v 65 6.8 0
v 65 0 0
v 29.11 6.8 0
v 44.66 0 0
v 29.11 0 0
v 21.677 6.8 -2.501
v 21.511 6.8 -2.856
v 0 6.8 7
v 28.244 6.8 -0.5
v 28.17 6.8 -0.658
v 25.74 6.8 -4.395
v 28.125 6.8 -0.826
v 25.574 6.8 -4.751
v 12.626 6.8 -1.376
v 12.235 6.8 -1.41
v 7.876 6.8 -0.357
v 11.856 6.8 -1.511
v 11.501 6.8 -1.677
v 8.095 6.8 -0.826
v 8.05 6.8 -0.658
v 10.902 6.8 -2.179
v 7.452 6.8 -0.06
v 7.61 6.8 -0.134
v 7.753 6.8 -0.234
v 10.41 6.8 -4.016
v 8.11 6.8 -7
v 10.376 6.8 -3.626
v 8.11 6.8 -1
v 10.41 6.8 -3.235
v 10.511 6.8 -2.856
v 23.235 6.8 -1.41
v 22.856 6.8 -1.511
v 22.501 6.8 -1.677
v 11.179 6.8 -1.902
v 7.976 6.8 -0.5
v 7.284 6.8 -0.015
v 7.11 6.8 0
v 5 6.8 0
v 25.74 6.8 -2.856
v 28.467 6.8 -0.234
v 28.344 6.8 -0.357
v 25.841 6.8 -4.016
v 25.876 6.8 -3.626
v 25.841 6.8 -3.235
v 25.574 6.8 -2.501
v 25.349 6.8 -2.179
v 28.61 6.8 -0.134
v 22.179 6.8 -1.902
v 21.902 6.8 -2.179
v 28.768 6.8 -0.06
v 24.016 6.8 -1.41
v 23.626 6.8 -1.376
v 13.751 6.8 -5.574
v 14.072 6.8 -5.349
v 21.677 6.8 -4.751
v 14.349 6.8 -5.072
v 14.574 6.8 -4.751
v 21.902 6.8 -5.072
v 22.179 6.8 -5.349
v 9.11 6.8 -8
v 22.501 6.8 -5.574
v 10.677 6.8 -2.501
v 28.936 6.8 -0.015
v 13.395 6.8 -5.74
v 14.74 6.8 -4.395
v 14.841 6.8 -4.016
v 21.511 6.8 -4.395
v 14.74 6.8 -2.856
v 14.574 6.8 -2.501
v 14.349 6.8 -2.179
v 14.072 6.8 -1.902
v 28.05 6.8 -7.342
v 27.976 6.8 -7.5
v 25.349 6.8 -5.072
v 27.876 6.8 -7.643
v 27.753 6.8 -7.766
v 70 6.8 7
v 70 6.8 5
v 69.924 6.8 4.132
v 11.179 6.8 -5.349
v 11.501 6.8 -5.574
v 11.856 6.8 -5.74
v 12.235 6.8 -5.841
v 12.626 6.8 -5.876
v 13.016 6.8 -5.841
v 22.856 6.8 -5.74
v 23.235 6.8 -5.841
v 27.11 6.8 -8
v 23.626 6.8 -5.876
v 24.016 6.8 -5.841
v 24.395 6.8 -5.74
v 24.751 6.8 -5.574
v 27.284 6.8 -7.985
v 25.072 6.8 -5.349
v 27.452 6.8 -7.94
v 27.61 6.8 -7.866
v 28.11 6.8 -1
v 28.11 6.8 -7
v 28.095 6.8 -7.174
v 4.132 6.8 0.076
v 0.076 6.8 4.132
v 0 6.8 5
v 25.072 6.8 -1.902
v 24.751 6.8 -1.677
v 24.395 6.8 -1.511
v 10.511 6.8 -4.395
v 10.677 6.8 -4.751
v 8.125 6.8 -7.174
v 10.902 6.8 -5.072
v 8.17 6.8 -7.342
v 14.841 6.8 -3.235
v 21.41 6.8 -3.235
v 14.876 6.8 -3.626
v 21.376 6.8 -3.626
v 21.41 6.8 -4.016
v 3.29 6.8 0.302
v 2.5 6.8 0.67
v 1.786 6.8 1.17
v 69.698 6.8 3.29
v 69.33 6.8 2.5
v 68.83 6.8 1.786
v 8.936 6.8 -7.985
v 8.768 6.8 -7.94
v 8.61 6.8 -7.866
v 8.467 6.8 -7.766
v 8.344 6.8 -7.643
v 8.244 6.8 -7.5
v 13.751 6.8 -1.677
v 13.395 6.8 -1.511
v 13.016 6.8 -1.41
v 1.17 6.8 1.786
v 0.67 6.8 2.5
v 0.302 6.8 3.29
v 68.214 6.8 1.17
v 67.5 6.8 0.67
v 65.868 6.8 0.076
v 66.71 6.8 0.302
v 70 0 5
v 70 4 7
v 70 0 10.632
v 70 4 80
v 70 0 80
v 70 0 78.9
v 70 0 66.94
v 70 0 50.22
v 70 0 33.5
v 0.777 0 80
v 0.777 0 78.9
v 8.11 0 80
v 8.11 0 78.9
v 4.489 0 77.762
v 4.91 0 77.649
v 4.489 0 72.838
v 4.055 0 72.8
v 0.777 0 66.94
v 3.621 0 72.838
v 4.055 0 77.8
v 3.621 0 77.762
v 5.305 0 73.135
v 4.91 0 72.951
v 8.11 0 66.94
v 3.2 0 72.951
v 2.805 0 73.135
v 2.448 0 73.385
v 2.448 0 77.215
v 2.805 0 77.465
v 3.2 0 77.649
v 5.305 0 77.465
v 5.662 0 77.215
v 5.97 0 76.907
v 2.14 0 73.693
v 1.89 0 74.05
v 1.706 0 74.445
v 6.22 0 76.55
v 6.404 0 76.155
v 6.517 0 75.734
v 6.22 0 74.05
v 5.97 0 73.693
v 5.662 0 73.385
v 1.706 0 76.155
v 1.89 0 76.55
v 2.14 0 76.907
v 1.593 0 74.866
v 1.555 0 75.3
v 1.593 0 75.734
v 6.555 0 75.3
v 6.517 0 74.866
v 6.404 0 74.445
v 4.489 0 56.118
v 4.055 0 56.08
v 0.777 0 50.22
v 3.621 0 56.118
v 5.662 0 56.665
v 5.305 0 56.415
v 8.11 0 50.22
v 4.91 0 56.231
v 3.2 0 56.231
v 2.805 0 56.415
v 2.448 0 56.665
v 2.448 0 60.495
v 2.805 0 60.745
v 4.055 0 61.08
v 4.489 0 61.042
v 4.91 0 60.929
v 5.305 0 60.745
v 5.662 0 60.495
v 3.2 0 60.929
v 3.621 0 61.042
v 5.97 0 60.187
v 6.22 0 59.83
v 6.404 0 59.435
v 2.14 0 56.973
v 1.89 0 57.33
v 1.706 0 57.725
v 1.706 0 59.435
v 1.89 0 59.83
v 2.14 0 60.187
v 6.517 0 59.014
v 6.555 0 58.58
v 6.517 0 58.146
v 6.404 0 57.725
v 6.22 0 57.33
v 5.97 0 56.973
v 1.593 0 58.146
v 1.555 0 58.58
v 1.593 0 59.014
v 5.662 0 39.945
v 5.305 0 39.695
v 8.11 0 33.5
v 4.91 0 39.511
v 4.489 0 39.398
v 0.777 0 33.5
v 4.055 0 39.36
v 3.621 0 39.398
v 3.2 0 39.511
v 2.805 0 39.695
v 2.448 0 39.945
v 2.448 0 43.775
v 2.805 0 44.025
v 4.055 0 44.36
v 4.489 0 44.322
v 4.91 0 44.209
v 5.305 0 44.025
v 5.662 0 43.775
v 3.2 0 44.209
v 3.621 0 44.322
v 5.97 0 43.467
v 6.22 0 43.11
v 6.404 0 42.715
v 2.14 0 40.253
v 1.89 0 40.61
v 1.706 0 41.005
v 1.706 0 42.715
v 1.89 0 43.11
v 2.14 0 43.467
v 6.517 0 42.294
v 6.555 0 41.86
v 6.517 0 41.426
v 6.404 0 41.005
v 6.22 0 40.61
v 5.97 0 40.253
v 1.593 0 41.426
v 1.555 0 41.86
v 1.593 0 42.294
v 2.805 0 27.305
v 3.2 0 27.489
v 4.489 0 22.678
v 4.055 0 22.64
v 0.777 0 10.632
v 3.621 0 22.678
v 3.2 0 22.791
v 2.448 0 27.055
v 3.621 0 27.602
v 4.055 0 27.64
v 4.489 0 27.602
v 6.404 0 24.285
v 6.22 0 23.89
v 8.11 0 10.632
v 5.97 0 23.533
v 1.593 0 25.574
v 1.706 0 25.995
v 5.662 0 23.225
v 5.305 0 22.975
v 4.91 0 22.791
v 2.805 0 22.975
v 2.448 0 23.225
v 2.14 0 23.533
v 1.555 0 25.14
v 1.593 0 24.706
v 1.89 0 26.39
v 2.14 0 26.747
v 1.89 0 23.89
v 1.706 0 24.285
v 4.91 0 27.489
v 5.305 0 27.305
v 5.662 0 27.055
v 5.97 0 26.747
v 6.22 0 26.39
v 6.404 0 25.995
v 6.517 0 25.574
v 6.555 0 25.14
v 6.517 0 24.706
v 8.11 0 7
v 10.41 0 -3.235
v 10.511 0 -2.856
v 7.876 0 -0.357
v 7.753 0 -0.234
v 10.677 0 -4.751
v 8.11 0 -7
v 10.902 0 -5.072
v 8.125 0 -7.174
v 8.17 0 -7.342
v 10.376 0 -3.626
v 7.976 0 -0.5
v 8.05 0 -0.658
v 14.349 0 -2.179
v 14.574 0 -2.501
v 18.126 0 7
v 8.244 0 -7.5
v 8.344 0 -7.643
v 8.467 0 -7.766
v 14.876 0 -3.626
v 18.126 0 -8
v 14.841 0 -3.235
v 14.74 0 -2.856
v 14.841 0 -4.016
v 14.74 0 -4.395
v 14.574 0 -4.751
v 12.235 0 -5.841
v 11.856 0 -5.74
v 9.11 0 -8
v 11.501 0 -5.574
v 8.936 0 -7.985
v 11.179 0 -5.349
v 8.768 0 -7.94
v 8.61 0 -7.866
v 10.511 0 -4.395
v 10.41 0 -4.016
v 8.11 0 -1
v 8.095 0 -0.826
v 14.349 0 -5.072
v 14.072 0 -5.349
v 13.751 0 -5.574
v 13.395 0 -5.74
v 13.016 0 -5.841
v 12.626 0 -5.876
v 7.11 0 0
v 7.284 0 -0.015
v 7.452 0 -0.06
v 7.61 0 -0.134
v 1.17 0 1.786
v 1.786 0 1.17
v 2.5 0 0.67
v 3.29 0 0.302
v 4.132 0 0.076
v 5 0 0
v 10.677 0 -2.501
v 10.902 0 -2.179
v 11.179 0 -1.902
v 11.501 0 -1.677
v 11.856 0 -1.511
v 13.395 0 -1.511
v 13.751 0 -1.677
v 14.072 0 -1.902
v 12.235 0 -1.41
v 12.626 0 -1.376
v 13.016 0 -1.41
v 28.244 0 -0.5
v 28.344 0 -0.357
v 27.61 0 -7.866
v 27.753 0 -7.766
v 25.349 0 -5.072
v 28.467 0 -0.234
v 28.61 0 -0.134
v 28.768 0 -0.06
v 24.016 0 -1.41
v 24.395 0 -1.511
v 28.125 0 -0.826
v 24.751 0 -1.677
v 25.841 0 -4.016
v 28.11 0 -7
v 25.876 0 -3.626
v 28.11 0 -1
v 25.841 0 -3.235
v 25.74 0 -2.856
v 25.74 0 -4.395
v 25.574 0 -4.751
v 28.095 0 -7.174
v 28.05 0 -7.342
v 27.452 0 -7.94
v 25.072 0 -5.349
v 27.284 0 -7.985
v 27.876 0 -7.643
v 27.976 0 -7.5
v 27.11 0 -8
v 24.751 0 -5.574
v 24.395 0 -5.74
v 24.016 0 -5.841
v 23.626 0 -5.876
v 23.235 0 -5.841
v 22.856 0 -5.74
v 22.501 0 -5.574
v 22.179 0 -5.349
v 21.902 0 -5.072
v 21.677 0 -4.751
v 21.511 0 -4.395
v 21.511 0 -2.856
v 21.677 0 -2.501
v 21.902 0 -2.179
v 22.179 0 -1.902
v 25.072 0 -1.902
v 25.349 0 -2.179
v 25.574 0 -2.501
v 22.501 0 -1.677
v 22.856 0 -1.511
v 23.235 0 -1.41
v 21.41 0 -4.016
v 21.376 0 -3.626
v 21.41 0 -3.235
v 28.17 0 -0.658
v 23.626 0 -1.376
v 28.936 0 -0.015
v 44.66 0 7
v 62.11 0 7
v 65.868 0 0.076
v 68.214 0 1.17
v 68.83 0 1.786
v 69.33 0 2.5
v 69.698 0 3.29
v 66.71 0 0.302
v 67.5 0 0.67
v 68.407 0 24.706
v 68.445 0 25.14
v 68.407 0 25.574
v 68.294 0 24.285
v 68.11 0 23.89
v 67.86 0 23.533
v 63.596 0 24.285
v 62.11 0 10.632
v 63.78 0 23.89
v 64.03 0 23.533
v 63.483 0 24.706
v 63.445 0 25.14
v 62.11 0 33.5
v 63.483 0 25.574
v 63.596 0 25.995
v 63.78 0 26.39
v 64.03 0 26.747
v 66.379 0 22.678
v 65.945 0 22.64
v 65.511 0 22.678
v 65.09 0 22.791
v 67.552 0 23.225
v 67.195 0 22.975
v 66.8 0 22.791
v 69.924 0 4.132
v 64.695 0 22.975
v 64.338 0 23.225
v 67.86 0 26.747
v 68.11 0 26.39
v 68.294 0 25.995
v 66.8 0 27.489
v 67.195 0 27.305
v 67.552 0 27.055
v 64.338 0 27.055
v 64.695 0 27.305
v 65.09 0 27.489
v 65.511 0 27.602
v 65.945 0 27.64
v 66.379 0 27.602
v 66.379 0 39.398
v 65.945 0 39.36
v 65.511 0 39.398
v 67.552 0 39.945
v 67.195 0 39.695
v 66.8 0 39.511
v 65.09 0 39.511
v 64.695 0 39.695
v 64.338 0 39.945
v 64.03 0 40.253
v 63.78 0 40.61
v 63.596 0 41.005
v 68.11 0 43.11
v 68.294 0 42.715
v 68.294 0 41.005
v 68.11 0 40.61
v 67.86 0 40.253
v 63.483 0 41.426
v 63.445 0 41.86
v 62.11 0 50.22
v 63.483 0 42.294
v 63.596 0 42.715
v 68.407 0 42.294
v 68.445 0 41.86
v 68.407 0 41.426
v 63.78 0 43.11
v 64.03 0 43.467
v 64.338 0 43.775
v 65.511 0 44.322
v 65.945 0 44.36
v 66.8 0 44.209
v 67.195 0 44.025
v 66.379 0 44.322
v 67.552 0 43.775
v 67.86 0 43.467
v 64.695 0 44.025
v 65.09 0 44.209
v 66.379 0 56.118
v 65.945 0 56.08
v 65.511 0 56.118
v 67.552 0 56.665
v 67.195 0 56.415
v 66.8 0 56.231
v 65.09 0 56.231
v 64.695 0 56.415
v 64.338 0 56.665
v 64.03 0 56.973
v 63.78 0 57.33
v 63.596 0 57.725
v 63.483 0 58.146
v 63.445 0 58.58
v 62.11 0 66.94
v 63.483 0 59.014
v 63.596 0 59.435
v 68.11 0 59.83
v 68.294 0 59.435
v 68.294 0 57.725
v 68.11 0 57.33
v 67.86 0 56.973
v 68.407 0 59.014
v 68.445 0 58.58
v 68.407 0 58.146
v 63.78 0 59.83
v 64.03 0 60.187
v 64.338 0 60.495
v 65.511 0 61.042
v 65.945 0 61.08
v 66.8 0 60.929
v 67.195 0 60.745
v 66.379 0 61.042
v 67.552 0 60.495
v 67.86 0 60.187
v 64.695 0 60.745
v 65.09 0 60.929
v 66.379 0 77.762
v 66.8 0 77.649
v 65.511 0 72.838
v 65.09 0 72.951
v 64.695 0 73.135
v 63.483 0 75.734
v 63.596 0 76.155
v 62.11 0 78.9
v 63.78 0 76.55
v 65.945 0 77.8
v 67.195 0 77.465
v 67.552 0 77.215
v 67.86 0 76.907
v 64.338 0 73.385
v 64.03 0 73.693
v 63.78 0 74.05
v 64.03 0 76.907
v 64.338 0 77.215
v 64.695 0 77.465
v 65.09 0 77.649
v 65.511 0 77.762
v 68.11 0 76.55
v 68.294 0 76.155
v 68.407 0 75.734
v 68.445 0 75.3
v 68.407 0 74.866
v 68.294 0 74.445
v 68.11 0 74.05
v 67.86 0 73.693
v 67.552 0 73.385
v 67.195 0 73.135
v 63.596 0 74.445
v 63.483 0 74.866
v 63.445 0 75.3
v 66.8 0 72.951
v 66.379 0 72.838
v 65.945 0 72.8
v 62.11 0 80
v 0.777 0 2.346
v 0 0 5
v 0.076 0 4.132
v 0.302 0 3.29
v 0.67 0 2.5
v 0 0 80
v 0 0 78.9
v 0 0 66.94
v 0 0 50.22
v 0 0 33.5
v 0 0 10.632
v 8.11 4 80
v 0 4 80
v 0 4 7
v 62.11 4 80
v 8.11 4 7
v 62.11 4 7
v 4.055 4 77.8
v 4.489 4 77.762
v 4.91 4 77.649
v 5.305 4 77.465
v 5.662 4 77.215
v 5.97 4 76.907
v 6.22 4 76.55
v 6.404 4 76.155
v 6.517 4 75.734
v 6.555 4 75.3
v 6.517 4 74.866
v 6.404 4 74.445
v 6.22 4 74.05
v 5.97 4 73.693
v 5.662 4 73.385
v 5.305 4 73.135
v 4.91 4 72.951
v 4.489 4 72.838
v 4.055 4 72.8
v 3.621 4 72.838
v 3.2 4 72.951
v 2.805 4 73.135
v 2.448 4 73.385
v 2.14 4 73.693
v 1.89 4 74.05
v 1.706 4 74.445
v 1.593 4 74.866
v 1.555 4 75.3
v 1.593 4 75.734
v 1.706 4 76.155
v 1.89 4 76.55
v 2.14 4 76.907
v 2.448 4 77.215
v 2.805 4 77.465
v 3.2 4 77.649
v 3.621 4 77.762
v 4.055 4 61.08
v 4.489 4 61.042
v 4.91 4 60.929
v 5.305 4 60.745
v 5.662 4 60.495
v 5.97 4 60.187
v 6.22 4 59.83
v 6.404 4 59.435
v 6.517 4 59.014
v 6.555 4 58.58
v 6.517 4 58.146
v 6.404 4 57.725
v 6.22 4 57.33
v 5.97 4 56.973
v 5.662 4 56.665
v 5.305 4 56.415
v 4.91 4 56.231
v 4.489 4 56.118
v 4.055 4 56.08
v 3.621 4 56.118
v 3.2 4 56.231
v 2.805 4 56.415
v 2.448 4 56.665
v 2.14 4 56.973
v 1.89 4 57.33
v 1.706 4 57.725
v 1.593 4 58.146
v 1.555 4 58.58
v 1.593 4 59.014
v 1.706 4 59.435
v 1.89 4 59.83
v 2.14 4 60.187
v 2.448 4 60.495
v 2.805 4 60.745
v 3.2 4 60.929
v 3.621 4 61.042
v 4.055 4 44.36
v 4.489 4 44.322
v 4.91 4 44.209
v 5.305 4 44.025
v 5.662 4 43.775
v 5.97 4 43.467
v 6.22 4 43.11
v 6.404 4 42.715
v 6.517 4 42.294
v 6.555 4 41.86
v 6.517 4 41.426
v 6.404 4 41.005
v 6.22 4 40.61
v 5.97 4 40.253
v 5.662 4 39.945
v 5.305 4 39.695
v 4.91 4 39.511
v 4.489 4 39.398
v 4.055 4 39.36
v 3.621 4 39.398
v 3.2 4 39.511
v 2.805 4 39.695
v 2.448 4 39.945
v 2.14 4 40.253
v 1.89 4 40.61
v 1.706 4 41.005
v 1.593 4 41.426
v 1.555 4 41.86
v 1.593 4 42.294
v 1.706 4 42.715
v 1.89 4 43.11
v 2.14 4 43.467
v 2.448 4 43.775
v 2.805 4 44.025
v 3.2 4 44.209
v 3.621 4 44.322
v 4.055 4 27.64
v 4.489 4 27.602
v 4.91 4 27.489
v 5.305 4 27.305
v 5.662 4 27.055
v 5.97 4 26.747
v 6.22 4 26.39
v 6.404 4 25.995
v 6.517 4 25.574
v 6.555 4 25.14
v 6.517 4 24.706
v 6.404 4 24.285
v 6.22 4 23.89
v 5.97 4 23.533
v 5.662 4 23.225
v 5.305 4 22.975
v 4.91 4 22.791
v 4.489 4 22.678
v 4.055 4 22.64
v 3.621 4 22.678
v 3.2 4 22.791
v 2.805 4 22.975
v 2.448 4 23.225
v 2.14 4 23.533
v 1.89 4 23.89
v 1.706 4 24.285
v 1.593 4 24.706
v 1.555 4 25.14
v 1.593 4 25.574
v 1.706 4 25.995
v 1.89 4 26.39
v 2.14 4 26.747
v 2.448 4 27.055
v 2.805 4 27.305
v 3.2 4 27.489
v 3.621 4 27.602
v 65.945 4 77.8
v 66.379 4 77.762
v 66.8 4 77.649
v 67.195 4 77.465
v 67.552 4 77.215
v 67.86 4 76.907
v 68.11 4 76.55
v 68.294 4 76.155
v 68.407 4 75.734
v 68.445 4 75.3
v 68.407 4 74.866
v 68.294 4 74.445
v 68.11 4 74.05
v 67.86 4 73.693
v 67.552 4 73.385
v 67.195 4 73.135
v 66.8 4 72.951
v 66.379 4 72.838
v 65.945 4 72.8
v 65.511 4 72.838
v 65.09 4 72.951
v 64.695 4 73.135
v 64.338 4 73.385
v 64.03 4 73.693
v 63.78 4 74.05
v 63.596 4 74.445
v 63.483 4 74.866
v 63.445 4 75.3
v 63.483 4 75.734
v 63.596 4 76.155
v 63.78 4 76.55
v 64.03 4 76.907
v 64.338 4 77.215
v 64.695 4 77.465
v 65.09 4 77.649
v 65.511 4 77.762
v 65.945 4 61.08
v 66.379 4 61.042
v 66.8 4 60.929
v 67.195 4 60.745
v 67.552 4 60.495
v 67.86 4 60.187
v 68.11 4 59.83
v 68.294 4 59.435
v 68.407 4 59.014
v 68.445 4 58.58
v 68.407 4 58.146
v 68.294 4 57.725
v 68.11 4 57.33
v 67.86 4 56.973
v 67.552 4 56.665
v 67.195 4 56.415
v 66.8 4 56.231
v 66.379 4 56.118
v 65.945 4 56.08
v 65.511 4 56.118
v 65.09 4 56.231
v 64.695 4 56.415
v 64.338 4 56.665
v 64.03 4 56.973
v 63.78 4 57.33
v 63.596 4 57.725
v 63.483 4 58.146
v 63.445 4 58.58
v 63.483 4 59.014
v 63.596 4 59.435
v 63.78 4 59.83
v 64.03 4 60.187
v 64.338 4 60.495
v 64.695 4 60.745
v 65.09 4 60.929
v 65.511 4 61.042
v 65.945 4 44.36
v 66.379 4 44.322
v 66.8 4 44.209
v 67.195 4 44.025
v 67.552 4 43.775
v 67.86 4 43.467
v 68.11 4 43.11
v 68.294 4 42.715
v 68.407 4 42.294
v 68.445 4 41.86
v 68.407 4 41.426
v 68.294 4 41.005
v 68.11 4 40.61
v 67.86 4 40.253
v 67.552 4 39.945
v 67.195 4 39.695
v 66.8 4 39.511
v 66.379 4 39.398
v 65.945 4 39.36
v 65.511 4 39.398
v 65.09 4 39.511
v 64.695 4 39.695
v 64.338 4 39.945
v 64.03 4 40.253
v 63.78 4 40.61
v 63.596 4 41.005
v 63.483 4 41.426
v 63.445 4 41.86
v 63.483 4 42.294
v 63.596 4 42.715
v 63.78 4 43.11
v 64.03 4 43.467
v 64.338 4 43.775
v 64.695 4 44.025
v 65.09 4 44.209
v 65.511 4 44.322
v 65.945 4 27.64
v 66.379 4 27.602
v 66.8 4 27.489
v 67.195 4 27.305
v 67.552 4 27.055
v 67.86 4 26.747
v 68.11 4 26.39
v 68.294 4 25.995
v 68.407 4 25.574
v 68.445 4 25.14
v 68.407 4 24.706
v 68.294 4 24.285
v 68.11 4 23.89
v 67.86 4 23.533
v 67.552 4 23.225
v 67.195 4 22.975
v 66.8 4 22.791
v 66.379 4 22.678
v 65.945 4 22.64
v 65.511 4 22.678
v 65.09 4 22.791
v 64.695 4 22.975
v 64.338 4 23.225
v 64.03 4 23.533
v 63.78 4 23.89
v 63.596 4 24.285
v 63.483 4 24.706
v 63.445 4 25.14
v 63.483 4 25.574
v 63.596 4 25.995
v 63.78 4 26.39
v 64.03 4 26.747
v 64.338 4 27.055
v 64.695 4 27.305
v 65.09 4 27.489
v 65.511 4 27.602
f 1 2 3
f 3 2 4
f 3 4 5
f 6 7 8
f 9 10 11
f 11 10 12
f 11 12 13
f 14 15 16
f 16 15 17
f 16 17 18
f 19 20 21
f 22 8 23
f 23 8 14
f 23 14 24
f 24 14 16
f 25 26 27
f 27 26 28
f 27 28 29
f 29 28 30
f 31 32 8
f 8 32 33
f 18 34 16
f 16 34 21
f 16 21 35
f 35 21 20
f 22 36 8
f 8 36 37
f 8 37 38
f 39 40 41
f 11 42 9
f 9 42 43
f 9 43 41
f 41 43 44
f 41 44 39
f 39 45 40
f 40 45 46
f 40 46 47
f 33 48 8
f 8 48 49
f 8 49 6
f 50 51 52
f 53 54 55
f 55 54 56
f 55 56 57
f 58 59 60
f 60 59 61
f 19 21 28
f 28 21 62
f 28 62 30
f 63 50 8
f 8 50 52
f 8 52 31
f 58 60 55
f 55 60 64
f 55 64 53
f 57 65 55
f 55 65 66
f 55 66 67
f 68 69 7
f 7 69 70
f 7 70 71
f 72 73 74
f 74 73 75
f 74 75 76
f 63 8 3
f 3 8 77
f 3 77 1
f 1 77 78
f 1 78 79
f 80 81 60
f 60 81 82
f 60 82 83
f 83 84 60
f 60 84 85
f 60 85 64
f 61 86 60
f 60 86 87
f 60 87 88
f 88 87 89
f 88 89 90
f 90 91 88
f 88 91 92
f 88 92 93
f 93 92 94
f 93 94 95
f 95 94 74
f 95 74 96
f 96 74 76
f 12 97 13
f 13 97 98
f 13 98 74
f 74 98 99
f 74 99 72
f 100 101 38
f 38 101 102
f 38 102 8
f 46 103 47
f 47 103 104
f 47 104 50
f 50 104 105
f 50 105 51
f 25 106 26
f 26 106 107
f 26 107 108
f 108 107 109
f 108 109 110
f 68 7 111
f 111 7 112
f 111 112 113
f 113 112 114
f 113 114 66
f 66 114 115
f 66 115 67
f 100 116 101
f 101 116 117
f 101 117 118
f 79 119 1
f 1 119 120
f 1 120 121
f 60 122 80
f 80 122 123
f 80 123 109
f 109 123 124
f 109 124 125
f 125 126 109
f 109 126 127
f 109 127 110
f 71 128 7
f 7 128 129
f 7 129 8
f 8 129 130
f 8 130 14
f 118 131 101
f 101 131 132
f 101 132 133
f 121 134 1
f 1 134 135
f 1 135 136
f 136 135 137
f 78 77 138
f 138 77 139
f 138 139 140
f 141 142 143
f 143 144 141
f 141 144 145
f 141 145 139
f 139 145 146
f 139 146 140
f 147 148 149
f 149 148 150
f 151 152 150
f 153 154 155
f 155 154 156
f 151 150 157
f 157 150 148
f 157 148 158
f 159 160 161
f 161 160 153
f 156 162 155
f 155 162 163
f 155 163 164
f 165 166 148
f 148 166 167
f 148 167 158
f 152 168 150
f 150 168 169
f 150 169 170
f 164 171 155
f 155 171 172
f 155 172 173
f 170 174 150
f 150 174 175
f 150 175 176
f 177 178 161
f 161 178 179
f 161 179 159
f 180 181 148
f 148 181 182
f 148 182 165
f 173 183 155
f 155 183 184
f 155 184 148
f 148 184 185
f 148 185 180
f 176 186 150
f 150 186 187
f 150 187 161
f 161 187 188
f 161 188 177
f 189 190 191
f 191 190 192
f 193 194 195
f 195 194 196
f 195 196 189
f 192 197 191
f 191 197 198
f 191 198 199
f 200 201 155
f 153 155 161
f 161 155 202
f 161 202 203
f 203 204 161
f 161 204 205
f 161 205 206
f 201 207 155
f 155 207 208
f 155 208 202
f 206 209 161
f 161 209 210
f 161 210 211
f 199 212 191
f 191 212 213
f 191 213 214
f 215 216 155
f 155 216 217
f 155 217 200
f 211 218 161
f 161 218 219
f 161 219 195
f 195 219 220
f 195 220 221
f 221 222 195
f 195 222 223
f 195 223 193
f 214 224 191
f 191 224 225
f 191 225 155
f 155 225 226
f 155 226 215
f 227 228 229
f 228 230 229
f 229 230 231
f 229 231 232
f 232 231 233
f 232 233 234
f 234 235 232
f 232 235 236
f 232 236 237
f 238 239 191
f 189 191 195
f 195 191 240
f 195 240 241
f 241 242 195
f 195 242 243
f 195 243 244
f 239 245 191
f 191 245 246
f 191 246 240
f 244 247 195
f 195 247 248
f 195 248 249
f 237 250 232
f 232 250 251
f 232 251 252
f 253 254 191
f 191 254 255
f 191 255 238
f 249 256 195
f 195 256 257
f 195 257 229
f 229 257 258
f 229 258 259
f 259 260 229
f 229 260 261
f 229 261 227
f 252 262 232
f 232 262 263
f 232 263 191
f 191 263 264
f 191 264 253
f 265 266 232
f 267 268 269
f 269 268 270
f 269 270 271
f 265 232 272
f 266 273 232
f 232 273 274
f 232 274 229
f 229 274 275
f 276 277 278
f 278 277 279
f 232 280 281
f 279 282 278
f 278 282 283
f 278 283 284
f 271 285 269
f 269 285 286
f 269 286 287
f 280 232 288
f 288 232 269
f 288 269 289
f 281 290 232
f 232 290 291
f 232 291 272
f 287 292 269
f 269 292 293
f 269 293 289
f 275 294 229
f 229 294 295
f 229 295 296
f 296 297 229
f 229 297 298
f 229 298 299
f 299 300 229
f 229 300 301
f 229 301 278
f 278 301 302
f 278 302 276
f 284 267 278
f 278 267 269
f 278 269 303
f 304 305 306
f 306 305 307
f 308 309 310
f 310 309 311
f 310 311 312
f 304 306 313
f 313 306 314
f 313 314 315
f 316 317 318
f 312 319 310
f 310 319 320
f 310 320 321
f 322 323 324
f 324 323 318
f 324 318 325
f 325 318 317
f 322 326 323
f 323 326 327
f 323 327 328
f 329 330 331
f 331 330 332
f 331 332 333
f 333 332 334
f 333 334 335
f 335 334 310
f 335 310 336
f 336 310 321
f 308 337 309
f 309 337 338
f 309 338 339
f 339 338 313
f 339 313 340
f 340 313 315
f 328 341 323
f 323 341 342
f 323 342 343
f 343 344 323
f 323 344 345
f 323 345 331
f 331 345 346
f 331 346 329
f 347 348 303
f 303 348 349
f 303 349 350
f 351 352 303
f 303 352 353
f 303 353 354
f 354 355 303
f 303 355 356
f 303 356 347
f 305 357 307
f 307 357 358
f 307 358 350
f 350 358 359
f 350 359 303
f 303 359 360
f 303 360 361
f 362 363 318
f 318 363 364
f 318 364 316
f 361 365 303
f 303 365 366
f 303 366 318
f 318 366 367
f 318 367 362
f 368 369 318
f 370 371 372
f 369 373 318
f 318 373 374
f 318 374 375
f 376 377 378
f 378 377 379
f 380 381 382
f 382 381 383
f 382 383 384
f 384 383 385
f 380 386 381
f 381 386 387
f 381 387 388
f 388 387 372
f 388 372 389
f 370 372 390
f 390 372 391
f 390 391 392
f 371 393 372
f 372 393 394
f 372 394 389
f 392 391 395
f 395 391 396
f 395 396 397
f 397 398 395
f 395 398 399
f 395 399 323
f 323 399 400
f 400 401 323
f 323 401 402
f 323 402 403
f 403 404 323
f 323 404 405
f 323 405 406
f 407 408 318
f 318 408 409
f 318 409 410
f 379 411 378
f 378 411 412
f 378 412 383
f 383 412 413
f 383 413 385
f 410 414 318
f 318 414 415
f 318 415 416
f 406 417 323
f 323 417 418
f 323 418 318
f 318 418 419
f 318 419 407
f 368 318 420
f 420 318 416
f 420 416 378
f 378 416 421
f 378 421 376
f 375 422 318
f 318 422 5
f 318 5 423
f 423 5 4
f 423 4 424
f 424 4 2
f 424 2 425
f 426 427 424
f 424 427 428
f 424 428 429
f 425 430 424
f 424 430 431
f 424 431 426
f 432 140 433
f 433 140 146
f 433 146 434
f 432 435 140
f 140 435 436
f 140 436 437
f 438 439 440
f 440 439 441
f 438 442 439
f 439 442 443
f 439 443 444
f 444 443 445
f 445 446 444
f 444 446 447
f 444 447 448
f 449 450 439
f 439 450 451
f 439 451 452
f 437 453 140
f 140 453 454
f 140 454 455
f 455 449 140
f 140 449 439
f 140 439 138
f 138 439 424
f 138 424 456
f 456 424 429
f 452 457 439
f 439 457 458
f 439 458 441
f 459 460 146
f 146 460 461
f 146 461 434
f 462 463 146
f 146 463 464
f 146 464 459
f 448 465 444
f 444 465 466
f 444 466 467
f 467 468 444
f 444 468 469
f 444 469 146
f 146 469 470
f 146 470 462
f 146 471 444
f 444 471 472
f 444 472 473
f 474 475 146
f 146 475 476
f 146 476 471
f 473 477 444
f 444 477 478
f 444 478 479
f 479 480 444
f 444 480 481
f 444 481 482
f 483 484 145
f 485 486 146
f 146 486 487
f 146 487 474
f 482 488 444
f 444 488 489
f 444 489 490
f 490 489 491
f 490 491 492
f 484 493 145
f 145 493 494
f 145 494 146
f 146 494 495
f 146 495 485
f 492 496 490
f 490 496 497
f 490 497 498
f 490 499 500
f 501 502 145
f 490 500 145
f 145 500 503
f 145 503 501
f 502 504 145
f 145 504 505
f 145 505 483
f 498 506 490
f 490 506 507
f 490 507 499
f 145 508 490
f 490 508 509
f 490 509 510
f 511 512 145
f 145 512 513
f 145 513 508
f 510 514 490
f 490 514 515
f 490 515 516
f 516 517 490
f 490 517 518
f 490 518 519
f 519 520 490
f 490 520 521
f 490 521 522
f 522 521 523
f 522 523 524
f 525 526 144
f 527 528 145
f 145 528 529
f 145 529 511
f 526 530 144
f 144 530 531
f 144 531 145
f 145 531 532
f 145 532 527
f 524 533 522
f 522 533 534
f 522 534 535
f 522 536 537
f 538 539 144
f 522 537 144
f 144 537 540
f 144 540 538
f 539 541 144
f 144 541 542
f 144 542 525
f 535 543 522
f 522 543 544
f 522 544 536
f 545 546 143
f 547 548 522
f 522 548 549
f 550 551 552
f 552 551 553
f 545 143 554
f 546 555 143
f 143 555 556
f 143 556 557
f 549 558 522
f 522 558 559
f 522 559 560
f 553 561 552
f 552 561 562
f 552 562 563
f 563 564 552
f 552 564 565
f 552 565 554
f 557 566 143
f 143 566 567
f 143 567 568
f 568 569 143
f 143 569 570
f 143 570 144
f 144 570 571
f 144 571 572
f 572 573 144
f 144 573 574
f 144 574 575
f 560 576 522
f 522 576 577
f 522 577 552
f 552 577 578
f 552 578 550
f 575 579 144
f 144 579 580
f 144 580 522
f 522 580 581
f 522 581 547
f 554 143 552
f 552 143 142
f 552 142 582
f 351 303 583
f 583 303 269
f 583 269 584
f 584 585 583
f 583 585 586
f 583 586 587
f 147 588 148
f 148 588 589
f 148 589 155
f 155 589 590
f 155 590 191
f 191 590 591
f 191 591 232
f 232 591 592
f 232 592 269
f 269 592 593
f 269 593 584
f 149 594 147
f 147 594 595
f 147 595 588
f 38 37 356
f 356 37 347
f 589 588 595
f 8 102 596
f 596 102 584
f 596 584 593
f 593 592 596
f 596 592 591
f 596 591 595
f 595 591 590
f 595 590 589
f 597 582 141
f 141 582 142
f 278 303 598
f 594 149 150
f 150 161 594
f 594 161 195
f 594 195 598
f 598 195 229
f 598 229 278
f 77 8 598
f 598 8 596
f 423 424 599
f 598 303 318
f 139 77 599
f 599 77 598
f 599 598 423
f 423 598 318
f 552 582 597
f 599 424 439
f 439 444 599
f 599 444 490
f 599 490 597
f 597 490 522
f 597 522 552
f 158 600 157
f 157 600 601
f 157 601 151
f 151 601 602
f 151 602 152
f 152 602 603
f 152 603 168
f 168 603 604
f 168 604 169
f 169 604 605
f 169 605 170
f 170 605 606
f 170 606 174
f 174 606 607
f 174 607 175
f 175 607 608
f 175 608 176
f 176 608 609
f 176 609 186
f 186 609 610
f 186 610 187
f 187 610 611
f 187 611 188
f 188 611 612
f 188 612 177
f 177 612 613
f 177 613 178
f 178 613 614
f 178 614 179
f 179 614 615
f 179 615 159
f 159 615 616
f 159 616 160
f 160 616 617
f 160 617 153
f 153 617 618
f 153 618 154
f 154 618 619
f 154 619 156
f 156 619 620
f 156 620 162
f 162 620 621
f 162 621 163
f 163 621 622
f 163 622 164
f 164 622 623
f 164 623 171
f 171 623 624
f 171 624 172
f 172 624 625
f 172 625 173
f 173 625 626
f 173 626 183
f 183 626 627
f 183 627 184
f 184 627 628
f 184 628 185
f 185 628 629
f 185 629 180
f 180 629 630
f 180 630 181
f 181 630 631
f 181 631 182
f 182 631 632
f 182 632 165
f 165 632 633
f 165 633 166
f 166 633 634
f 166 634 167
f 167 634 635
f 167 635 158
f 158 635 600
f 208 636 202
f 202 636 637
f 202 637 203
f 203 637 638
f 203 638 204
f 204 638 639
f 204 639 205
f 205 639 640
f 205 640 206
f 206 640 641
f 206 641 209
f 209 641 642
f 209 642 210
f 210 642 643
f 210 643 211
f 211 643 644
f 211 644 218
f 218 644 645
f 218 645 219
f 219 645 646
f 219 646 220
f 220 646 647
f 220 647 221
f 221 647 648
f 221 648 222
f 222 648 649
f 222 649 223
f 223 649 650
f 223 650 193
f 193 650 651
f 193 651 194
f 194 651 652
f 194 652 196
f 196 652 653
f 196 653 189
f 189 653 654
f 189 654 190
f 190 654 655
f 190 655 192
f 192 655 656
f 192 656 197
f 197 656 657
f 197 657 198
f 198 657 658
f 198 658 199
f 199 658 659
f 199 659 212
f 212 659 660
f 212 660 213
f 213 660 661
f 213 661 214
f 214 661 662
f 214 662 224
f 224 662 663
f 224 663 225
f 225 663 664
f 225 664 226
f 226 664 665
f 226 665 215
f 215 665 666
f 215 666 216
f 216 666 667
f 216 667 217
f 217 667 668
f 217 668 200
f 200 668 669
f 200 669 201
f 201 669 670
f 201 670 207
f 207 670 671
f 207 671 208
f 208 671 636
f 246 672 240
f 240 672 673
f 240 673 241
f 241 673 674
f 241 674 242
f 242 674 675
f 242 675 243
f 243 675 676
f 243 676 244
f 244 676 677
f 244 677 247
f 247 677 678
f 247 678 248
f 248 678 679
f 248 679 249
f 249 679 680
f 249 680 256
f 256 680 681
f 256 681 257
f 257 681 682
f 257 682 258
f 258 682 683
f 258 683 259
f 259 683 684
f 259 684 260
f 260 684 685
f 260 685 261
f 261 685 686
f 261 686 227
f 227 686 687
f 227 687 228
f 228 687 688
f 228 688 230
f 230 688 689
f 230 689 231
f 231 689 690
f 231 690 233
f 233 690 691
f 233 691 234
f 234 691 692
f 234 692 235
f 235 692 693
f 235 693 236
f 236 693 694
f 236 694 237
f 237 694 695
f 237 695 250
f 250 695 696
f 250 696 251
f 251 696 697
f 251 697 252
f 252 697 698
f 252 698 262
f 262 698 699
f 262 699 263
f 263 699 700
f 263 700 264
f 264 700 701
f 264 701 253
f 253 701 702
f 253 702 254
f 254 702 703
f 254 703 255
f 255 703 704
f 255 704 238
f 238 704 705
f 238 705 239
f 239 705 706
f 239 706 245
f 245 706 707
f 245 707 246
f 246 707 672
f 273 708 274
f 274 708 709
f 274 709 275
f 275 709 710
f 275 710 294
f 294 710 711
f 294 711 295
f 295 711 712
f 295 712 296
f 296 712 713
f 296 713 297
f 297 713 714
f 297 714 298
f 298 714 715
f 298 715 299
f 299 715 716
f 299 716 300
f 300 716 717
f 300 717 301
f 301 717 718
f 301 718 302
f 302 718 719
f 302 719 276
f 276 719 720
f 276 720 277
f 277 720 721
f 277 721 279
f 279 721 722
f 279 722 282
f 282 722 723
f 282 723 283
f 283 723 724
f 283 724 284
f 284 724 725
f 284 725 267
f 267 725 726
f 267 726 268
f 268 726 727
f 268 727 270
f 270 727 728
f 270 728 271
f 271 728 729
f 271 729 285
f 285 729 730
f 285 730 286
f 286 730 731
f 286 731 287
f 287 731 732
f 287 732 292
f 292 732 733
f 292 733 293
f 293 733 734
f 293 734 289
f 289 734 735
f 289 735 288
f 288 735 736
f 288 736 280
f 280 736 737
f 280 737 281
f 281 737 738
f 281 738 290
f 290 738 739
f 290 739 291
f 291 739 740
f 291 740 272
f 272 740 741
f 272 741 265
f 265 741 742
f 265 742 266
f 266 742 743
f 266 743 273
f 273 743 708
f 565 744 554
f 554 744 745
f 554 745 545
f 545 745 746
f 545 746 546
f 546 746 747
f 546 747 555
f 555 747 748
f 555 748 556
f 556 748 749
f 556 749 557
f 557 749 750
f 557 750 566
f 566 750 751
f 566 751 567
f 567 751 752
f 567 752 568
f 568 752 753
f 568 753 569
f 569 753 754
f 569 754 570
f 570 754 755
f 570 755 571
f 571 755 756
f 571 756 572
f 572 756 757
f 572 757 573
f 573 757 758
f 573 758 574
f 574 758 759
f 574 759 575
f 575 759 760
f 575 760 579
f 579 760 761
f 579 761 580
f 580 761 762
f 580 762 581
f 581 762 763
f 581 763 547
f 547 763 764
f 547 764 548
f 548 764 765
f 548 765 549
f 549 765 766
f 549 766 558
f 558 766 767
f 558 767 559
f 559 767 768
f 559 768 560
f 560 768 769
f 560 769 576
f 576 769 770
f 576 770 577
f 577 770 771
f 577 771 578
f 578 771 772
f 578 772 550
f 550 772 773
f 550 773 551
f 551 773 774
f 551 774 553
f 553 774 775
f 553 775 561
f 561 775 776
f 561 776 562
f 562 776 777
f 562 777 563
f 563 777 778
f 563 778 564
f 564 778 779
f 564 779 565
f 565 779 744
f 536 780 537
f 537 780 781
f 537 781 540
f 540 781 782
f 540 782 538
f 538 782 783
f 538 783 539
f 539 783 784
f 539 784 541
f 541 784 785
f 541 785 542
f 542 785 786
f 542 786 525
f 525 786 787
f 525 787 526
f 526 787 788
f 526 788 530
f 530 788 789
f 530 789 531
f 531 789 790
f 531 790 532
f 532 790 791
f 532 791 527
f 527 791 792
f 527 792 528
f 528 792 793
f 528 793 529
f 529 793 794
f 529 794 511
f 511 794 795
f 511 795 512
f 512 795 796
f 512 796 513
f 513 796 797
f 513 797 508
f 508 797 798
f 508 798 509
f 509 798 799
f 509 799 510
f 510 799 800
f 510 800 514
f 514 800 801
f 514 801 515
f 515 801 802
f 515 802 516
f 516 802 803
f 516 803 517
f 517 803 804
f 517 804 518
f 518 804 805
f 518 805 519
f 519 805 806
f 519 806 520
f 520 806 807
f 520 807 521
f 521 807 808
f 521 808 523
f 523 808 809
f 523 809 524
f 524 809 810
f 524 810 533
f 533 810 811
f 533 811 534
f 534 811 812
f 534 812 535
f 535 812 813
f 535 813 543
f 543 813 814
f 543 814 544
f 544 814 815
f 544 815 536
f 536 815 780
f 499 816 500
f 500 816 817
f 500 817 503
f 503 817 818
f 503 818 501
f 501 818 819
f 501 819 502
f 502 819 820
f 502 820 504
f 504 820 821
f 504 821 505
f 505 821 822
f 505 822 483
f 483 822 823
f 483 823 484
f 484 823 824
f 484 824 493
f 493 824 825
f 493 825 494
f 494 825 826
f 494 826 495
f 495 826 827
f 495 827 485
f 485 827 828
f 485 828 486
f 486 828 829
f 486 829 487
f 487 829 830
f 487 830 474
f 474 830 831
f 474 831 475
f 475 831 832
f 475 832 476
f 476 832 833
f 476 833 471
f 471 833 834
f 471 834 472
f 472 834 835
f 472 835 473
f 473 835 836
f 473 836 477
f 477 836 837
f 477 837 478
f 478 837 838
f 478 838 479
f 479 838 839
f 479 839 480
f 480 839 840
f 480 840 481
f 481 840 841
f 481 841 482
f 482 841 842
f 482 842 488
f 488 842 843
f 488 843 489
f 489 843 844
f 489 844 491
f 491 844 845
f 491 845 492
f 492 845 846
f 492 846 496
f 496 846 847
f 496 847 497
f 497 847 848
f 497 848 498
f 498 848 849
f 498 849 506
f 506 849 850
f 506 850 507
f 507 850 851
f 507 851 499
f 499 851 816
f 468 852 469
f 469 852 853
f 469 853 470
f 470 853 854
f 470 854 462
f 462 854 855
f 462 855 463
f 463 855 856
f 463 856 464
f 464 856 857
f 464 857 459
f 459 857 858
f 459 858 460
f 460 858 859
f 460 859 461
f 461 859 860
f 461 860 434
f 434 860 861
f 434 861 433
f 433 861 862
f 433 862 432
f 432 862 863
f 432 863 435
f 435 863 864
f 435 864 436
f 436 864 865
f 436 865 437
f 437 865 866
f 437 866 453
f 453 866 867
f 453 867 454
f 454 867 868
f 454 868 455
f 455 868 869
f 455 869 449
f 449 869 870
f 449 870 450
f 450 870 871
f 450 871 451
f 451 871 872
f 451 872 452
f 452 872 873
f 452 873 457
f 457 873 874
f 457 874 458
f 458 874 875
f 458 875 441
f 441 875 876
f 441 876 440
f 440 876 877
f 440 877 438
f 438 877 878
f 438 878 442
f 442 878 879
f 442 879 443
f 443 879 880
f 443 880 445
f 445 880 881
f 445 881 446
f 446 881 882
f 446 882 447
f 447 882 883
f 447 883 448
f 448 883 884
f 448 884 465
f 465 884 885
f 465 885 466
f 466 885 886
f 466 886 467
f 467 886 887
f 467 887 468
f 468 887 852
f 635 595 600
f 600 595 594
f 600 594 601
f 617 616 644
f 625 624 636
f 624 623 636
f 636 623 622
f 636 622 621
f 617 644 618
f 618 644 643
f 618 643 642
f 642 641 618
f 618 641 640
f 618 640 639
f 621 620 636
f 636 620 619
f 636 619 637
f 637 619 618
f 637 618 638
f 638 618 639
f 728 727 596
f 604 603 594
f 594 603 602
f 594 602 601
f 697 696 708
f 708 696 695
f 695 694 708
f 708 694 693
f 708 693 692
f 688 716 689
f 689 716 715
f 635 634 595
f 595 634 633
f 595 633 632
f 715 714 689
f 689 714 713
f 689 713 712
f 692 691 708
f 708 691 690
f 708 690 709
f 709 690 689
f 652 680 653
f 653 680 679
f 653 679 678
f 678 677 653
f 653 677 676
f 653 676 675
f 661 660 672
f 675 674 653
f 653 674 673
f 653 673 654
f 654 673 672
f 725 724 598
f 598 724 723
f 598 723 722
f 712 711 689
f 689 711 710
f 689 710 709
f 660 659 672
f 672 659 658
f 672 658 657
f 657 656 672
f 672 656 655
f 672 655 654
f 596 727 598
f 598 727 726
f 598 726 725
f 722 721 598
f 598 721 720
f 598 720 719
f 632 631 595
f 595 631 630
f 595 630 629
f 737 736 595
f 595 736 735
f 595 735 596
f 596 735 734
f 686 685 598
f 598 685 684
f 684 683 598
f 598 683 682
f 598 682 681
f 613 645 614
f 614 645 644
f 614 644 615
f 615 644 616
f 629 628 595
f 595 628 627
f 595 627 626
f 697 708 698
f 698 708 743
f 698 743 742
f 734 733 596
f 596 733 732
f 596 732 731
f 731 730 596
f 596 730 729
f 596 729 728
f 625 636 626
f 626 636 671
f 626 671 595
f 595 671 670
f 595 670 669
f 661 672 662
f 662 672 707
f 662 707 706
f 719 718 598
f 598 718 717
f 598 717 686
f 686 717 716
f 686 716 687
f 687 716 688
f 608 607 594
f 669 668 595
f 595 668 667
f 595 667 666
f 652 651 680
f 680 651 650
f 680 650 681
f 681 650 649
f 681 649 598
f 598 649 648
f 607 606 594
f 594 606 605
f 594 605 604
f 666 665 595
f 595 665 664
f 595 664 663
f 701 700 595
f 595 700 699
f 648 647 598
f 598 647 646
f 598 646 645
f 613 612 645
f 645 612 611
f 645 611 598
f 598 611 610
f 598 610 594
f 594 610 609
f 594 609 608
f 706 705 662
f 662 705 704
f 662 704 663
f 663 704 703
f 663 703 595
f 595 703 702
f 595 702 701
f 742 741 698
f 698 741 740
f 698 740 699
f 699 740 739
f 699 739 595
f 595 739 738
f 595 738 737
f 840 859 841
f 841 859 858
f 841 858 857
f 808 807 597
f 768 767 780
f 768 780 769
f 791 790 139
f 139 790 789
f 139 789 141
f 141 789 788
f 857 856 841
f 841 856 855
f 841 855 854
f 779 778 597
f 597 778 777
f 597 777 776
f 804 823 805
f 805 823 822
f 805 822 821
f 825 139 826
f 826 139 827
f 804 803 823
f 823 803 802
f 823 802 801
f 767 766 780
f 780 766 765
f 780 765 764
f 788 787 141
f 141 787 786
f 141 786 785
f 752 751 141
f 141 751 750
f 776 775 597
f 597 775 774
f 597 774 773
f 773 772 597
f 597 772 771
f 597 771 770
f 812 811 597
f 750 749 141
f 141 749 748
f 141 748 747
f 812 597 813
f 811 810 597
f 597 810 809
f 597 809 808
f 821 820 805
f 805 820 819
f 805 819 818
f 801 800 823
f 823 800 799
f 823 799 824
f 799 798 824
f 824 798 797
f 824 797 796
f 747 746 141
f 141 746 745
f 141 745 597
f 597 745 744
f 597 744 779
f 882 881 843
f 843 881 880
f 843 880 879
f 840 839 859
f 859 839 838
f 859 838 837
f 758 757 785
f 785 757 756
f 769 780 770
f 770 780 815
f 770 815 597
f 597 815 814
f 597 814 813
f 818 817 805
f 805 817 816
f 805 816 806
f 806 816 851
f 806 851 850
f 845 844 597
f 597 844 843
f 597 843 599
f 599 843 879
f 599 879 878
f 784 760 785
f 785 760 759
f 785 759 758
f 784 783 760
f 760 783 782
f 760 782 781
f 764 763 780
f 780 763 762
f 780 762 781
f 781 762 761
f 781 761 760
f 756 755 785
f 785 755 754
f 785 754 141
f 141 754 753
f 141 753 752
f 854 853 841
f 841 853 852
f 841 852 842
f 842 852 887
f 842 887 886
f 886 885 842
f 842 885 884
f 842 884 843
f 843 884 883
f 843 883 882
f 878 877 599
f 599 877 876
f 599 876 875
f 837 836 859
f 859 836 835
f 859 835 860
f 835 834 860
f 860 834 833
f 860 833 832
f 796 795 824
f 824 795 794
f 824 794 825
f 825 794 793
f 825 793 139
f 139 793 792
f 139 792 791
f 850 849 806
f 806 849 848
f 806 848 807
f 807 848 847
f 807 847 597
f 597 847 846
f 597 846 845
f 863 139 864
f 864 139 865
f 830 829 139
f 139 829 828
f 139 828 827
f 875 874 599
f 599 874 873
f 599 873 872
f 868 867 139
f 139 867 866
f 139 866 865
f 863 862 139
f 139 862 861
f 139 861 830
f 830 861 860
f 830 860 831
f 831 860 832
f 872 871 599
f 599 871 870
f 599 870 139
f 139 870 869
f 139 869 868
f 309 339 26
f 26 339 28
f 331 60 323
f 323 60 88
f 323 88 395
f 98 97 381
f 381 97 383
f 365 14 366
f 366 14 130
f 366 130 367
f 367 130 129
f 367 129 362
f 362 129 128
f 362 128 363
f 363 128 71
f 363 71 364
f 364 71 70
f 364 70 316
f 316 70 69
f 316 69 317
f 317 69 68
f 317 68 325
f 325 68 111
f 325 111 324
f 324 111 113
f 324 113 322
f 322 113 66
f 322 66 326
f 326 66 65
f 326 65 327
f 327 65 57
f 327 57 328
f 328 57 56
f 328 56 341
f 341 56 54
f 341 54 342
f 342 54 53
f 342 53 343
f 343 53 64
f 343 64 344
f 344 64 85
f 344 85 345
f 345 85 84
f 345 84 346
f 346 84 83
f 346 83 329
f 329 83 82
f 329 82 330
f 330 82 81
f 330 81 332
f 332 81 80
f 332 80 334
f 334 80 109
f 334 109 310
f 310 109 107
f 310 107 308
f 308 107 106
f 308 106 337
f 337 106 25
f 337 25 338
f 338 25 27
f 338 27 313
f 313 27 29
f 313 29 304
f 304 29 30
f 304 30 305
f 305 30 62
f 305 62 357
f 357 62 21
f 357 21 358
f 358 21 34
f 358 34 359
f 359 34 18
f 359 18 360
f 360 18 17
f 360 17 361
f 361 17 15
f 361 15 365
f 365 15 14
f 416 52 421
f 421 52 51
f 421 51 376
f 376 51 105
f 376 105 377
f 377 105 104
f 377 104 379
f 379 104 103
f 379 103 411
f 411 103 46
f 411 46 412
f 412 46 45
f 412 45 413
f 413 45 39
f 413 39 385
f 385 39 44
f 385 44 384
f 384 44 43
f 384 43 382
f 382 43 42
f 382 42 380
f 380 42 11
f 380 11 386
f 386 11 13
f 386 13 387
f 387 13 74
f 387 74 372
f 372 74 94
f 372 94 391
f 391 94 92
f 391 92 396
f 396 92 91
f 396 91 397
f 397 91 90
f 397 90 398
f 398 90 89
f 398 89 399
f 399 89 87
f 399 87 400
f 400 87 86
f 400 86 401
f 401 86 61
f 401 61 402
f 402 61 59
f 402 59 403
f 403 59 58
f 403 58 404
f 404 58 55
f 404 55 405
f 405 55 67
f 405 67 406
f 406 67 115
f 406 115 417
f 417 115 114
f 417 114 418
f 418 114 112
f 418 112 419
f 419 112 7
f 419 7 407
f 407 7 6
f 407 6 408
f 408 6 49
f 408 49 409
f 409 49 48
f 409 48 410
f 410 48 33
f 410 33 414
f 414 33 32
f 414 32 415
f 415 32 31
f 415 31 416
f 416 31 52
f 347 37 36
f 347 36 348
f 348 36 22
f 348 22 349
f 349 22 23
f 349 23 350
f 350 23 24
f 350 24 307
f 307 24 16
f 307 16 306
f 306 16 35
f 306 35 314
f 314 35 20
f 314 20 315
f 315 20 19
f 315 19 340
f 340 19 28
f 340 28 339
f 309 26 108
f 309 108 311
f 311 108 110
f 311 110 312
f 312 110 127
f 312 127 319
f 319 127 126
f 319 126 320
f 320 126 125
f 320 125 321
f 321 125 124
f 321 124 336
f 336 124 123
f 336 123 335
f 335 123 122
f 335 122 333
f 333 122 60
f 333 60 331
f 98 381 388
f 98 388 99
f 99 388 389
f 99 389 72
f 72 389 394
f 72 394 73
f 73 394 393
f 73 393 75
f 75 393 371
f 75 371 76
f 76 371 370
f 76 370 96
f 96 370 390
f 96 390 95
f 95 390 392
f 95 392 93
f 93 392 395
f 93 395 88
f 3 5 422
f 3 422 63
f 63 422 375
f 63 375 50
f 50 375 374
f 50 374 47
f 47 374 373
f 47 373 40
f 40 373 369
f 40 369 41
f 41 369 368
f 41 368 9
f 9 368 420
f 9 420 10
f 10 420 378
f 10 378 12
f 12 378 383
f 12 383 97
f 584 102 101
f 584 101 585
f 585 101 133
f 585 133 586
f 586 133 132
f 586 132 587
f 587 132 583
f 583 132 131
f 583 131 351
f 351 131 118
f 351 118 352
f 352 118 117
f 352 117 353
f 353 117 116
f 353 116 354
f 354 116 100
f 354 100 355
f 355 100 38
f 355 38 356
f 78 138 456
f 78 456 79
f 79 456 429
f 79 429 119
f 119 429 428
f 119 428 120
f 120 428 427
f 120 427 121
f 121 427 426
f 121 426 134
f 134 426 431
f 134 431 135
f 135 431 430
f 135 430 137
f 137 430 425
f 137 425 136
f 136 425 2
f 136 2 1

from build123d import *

# Parameters (mm, degrees)
SKETCH1_W               = 70
SKETCH1_H               = 80
BOSS_EXTRUDE1_DEPTH     = 6.8
SKETCH2_W               = 54
SKETCH2_H               = 73
CUT_EXTRUDE1_DEPTH      = 107.518730747
SKETCH3_R               = 2.5
CUT_EXTRUDE2_DEPTH      = 107.518730747
LPATTERN1_COUNT         = 4
LPATTERN1_PITCH         = 16.72
MIRROR1_COPY_1_SKETCH_R = 2.5
MIRROR1_COPY_1_DEPTH    = 107.518730747
MIRROR1_COPY_2_SKETCH_R = 2.5
MIRROR1_COPY_2_DEPTH    = 107.518730747
MIRROR1_COPY_3_SKETCH_R = 2.5
MIRROR1_COPY_3_DEPTH    = 107.518730747
SKETCH5_W               = 8.11
SKETCH5_H               = 73
CUT_EXTRUDE3_DEPTH      = 2.8
SKETCH4_W               = 20
SKETCH4_H               = 8
BOSS_EXTRUDE2_DEPTH     = 6.8
SKETCH7_R               = 2.25
CUT_EXTRUDE4_DEPTH      = 6.8
FILLET1_R               = 1
FILLET2_R               = 1
FILLET3_R               = 5


with BuildPart() as part:
    # Sketch1 → Boss-Extrude1 (new body)
    with BuildSketch(Plane(origin=(0, 0, 0), x_dir=(1, 0, 0), z_dir=(0, 1, 0))):
        with Locations((35, -40)):
            Rectangle(SKETCH1_W, SKETCH1_H)
    extrude(amount=BOSS_EXTRUDE1_DEPTH)

    # Sketch2 → Cut-Extrude1 (cut, through all)
    with BuildSketch(Plane(origin=(0, 6.8, 0), x_dir=(1, 0, 0), z_dir=(0, 1, 0))):
        with Locations((35.11, -43.5)):
            Rectangle(SKETCH2_W, SKETCH2_H)
    extrude(amount=-CUT_EXTRUDE1_DEPTH, mode=Mode.SUBTRACT)

    # Sketch3 → Cut-Extrude2 (cut, through all)
    with BuildSketch(Plane(origin=(0, 6.8, 0), x_dir=(1, 0, 0), z_dir=(0, 1, 0))):
        with Locations(Location((4.055, -75.3, 0), (0, 0, 270))):
            Circle(SKETCH3_R)
    cut_extrude2 = extrude(amount=-CUT_EXTRUDE2_DEPTH, mode=Mode.SUBTRACT)

    # LPattern1: Cut-Extrude2 ×4
    with Locations(*[(0, 0, -i * LPATTERN1_PITCH) for i in range(1, LPATTERN1_COUNT)]):
        add(cut_extrude2, mode=Mode.SUBTRACT)

    # Mirror1: Cut-Extrude2 across plane
    add(cut_extrude2.mirror(Plane(origin=(35, 0, 0), x_dir=(0, 0, 1), z_dir=(1, 0, 0))), mode=Mode.SUBTRACT)

    # Mirror1 copy 1 sketch → Mirror1 copy 1 (cut, through all)
    with BuildSketch(Plane(origin=(70, 6.8, -16.72), x_dir=(-1, 0, 0), z_dir=(0, 1, 0))):
        with Locations((4.055, 75.3)):
            Circle(MIRROR1_COPY_1_SKETCH_R)
    extrude(amount=-MIRROR1_COPY_1_DEPTH, mode=Mode.SUBTRACT)

    # Mirror1 copy 2 sketch → Mirror1 copy 2 (cut, through all)
    with BuildSketch(Plane(origin=(70, 6.8, -33.44), x_dir=(-1, 0, 0), z_dir=(0, 1, 0))):
        with Locations((4.055, 75.3)):
            Circle(MIRROR1_COPY_2_SKETCH_R)
    extrude(amount=-MIRROR1_COPY_2_DEPTH, mode=Mode.SUBTRACT)

    # Mirror1 copy 3 sketch → Mirror1 copy 3 (cut, through all)
    with BuildSketch(Plane(origin=(70, 6.8, -50.16), x_dir=(-1, 0, 0), z_dir=(0, 1, 0))):
        with Locations((4.055, 75.3)):
            Circle(MIRROR1_COPY_3_SKETCH_R)
    extrude(amount=-MIRROR1_COPY_3_DEPTH, mode=Mode.SUBTRACT)

    # Sketch5 → Cut-Extrude3 (cut)
    with BuildSketch(Plane(origin=(0, 6.8, 0), x_dir=(1, 0, 0), z_dir=(0, 1, 0))):
        with Locations((4.055, -43.5)):
            Rectangle(SKETCH5_W, SKETCH5_H)
    cut_extrude3 = extrude(amount=-CUT_EXTRUDE3_DEPTH, mode=Mode.SUBTRACT)

    # Mirror2: Cut-Extrude3 across plane
    add(cut_extrude3.mirror(Plane(origin=(35, 0, 0), x_dir=(0, 0, 1), z_dir=(1, 0, 0))), mode=Mode.SUBTRACT)

    # Sketch4 → Boss-Extrude2 (add)
    with BuildSketch(Plane(origin=(0, 6.8, 0), x_dir=(1, 0, 0), z_dir=(0, 1, 0))):
        with Locations((18.11, 4)):
            Rectangle(SKETCH4_W, SKETCH4_H)
    extrude(amount=-BOSS_EXTRUDE2_DEPTH)

    # Sketch7 → Cut-Extrude4 (cut)
    with BuildSketch(Plane(origin=(0, 6.8, 0), x_dir=(1, 0, 0), z_dir=(0, 1, 0))):
        with Locations(Location((12.625606255, 3.625550083, 0), (0, 0, 270))):
            Circle(SKETCH7_R)
        with Locations(Location((23.625606255, 3.625550083, 0), (0, 0, 270))):
            Circle(SKETCH7_R)
    extrude(amount=-CUT_EXTRUDE4_DEPTH, mode=Mode.SUBTRACT)

    # Fillet1
    fillet1_edges = [part.edges().sort_by_distance(p)[0] for p in [
        (8.11, 3.4, 0),
    ]]
    fillet(fillet1_edges, radius=FILLET1_R)

    # Fillet2
    fillet2_edges = [part.edges().sort_by_distance(p)[0] for p in [
        (8.11, 3.4, -8),
        (28.11, 3.4, -8),
        (28.11, 3.4, 0),
    ]]
    fillet(fillet2_edges, radius=FILLET2_R)

    # Fillet3
    fillet3_edges = [part.edges().sort_by_distance(p)[0] for p in [
        (0, 3.4, 0),
        (70, 3.4, 0),
    ]]
    fillet(fillet3_edges, radius=FILLET3_R)


solid = part.part
